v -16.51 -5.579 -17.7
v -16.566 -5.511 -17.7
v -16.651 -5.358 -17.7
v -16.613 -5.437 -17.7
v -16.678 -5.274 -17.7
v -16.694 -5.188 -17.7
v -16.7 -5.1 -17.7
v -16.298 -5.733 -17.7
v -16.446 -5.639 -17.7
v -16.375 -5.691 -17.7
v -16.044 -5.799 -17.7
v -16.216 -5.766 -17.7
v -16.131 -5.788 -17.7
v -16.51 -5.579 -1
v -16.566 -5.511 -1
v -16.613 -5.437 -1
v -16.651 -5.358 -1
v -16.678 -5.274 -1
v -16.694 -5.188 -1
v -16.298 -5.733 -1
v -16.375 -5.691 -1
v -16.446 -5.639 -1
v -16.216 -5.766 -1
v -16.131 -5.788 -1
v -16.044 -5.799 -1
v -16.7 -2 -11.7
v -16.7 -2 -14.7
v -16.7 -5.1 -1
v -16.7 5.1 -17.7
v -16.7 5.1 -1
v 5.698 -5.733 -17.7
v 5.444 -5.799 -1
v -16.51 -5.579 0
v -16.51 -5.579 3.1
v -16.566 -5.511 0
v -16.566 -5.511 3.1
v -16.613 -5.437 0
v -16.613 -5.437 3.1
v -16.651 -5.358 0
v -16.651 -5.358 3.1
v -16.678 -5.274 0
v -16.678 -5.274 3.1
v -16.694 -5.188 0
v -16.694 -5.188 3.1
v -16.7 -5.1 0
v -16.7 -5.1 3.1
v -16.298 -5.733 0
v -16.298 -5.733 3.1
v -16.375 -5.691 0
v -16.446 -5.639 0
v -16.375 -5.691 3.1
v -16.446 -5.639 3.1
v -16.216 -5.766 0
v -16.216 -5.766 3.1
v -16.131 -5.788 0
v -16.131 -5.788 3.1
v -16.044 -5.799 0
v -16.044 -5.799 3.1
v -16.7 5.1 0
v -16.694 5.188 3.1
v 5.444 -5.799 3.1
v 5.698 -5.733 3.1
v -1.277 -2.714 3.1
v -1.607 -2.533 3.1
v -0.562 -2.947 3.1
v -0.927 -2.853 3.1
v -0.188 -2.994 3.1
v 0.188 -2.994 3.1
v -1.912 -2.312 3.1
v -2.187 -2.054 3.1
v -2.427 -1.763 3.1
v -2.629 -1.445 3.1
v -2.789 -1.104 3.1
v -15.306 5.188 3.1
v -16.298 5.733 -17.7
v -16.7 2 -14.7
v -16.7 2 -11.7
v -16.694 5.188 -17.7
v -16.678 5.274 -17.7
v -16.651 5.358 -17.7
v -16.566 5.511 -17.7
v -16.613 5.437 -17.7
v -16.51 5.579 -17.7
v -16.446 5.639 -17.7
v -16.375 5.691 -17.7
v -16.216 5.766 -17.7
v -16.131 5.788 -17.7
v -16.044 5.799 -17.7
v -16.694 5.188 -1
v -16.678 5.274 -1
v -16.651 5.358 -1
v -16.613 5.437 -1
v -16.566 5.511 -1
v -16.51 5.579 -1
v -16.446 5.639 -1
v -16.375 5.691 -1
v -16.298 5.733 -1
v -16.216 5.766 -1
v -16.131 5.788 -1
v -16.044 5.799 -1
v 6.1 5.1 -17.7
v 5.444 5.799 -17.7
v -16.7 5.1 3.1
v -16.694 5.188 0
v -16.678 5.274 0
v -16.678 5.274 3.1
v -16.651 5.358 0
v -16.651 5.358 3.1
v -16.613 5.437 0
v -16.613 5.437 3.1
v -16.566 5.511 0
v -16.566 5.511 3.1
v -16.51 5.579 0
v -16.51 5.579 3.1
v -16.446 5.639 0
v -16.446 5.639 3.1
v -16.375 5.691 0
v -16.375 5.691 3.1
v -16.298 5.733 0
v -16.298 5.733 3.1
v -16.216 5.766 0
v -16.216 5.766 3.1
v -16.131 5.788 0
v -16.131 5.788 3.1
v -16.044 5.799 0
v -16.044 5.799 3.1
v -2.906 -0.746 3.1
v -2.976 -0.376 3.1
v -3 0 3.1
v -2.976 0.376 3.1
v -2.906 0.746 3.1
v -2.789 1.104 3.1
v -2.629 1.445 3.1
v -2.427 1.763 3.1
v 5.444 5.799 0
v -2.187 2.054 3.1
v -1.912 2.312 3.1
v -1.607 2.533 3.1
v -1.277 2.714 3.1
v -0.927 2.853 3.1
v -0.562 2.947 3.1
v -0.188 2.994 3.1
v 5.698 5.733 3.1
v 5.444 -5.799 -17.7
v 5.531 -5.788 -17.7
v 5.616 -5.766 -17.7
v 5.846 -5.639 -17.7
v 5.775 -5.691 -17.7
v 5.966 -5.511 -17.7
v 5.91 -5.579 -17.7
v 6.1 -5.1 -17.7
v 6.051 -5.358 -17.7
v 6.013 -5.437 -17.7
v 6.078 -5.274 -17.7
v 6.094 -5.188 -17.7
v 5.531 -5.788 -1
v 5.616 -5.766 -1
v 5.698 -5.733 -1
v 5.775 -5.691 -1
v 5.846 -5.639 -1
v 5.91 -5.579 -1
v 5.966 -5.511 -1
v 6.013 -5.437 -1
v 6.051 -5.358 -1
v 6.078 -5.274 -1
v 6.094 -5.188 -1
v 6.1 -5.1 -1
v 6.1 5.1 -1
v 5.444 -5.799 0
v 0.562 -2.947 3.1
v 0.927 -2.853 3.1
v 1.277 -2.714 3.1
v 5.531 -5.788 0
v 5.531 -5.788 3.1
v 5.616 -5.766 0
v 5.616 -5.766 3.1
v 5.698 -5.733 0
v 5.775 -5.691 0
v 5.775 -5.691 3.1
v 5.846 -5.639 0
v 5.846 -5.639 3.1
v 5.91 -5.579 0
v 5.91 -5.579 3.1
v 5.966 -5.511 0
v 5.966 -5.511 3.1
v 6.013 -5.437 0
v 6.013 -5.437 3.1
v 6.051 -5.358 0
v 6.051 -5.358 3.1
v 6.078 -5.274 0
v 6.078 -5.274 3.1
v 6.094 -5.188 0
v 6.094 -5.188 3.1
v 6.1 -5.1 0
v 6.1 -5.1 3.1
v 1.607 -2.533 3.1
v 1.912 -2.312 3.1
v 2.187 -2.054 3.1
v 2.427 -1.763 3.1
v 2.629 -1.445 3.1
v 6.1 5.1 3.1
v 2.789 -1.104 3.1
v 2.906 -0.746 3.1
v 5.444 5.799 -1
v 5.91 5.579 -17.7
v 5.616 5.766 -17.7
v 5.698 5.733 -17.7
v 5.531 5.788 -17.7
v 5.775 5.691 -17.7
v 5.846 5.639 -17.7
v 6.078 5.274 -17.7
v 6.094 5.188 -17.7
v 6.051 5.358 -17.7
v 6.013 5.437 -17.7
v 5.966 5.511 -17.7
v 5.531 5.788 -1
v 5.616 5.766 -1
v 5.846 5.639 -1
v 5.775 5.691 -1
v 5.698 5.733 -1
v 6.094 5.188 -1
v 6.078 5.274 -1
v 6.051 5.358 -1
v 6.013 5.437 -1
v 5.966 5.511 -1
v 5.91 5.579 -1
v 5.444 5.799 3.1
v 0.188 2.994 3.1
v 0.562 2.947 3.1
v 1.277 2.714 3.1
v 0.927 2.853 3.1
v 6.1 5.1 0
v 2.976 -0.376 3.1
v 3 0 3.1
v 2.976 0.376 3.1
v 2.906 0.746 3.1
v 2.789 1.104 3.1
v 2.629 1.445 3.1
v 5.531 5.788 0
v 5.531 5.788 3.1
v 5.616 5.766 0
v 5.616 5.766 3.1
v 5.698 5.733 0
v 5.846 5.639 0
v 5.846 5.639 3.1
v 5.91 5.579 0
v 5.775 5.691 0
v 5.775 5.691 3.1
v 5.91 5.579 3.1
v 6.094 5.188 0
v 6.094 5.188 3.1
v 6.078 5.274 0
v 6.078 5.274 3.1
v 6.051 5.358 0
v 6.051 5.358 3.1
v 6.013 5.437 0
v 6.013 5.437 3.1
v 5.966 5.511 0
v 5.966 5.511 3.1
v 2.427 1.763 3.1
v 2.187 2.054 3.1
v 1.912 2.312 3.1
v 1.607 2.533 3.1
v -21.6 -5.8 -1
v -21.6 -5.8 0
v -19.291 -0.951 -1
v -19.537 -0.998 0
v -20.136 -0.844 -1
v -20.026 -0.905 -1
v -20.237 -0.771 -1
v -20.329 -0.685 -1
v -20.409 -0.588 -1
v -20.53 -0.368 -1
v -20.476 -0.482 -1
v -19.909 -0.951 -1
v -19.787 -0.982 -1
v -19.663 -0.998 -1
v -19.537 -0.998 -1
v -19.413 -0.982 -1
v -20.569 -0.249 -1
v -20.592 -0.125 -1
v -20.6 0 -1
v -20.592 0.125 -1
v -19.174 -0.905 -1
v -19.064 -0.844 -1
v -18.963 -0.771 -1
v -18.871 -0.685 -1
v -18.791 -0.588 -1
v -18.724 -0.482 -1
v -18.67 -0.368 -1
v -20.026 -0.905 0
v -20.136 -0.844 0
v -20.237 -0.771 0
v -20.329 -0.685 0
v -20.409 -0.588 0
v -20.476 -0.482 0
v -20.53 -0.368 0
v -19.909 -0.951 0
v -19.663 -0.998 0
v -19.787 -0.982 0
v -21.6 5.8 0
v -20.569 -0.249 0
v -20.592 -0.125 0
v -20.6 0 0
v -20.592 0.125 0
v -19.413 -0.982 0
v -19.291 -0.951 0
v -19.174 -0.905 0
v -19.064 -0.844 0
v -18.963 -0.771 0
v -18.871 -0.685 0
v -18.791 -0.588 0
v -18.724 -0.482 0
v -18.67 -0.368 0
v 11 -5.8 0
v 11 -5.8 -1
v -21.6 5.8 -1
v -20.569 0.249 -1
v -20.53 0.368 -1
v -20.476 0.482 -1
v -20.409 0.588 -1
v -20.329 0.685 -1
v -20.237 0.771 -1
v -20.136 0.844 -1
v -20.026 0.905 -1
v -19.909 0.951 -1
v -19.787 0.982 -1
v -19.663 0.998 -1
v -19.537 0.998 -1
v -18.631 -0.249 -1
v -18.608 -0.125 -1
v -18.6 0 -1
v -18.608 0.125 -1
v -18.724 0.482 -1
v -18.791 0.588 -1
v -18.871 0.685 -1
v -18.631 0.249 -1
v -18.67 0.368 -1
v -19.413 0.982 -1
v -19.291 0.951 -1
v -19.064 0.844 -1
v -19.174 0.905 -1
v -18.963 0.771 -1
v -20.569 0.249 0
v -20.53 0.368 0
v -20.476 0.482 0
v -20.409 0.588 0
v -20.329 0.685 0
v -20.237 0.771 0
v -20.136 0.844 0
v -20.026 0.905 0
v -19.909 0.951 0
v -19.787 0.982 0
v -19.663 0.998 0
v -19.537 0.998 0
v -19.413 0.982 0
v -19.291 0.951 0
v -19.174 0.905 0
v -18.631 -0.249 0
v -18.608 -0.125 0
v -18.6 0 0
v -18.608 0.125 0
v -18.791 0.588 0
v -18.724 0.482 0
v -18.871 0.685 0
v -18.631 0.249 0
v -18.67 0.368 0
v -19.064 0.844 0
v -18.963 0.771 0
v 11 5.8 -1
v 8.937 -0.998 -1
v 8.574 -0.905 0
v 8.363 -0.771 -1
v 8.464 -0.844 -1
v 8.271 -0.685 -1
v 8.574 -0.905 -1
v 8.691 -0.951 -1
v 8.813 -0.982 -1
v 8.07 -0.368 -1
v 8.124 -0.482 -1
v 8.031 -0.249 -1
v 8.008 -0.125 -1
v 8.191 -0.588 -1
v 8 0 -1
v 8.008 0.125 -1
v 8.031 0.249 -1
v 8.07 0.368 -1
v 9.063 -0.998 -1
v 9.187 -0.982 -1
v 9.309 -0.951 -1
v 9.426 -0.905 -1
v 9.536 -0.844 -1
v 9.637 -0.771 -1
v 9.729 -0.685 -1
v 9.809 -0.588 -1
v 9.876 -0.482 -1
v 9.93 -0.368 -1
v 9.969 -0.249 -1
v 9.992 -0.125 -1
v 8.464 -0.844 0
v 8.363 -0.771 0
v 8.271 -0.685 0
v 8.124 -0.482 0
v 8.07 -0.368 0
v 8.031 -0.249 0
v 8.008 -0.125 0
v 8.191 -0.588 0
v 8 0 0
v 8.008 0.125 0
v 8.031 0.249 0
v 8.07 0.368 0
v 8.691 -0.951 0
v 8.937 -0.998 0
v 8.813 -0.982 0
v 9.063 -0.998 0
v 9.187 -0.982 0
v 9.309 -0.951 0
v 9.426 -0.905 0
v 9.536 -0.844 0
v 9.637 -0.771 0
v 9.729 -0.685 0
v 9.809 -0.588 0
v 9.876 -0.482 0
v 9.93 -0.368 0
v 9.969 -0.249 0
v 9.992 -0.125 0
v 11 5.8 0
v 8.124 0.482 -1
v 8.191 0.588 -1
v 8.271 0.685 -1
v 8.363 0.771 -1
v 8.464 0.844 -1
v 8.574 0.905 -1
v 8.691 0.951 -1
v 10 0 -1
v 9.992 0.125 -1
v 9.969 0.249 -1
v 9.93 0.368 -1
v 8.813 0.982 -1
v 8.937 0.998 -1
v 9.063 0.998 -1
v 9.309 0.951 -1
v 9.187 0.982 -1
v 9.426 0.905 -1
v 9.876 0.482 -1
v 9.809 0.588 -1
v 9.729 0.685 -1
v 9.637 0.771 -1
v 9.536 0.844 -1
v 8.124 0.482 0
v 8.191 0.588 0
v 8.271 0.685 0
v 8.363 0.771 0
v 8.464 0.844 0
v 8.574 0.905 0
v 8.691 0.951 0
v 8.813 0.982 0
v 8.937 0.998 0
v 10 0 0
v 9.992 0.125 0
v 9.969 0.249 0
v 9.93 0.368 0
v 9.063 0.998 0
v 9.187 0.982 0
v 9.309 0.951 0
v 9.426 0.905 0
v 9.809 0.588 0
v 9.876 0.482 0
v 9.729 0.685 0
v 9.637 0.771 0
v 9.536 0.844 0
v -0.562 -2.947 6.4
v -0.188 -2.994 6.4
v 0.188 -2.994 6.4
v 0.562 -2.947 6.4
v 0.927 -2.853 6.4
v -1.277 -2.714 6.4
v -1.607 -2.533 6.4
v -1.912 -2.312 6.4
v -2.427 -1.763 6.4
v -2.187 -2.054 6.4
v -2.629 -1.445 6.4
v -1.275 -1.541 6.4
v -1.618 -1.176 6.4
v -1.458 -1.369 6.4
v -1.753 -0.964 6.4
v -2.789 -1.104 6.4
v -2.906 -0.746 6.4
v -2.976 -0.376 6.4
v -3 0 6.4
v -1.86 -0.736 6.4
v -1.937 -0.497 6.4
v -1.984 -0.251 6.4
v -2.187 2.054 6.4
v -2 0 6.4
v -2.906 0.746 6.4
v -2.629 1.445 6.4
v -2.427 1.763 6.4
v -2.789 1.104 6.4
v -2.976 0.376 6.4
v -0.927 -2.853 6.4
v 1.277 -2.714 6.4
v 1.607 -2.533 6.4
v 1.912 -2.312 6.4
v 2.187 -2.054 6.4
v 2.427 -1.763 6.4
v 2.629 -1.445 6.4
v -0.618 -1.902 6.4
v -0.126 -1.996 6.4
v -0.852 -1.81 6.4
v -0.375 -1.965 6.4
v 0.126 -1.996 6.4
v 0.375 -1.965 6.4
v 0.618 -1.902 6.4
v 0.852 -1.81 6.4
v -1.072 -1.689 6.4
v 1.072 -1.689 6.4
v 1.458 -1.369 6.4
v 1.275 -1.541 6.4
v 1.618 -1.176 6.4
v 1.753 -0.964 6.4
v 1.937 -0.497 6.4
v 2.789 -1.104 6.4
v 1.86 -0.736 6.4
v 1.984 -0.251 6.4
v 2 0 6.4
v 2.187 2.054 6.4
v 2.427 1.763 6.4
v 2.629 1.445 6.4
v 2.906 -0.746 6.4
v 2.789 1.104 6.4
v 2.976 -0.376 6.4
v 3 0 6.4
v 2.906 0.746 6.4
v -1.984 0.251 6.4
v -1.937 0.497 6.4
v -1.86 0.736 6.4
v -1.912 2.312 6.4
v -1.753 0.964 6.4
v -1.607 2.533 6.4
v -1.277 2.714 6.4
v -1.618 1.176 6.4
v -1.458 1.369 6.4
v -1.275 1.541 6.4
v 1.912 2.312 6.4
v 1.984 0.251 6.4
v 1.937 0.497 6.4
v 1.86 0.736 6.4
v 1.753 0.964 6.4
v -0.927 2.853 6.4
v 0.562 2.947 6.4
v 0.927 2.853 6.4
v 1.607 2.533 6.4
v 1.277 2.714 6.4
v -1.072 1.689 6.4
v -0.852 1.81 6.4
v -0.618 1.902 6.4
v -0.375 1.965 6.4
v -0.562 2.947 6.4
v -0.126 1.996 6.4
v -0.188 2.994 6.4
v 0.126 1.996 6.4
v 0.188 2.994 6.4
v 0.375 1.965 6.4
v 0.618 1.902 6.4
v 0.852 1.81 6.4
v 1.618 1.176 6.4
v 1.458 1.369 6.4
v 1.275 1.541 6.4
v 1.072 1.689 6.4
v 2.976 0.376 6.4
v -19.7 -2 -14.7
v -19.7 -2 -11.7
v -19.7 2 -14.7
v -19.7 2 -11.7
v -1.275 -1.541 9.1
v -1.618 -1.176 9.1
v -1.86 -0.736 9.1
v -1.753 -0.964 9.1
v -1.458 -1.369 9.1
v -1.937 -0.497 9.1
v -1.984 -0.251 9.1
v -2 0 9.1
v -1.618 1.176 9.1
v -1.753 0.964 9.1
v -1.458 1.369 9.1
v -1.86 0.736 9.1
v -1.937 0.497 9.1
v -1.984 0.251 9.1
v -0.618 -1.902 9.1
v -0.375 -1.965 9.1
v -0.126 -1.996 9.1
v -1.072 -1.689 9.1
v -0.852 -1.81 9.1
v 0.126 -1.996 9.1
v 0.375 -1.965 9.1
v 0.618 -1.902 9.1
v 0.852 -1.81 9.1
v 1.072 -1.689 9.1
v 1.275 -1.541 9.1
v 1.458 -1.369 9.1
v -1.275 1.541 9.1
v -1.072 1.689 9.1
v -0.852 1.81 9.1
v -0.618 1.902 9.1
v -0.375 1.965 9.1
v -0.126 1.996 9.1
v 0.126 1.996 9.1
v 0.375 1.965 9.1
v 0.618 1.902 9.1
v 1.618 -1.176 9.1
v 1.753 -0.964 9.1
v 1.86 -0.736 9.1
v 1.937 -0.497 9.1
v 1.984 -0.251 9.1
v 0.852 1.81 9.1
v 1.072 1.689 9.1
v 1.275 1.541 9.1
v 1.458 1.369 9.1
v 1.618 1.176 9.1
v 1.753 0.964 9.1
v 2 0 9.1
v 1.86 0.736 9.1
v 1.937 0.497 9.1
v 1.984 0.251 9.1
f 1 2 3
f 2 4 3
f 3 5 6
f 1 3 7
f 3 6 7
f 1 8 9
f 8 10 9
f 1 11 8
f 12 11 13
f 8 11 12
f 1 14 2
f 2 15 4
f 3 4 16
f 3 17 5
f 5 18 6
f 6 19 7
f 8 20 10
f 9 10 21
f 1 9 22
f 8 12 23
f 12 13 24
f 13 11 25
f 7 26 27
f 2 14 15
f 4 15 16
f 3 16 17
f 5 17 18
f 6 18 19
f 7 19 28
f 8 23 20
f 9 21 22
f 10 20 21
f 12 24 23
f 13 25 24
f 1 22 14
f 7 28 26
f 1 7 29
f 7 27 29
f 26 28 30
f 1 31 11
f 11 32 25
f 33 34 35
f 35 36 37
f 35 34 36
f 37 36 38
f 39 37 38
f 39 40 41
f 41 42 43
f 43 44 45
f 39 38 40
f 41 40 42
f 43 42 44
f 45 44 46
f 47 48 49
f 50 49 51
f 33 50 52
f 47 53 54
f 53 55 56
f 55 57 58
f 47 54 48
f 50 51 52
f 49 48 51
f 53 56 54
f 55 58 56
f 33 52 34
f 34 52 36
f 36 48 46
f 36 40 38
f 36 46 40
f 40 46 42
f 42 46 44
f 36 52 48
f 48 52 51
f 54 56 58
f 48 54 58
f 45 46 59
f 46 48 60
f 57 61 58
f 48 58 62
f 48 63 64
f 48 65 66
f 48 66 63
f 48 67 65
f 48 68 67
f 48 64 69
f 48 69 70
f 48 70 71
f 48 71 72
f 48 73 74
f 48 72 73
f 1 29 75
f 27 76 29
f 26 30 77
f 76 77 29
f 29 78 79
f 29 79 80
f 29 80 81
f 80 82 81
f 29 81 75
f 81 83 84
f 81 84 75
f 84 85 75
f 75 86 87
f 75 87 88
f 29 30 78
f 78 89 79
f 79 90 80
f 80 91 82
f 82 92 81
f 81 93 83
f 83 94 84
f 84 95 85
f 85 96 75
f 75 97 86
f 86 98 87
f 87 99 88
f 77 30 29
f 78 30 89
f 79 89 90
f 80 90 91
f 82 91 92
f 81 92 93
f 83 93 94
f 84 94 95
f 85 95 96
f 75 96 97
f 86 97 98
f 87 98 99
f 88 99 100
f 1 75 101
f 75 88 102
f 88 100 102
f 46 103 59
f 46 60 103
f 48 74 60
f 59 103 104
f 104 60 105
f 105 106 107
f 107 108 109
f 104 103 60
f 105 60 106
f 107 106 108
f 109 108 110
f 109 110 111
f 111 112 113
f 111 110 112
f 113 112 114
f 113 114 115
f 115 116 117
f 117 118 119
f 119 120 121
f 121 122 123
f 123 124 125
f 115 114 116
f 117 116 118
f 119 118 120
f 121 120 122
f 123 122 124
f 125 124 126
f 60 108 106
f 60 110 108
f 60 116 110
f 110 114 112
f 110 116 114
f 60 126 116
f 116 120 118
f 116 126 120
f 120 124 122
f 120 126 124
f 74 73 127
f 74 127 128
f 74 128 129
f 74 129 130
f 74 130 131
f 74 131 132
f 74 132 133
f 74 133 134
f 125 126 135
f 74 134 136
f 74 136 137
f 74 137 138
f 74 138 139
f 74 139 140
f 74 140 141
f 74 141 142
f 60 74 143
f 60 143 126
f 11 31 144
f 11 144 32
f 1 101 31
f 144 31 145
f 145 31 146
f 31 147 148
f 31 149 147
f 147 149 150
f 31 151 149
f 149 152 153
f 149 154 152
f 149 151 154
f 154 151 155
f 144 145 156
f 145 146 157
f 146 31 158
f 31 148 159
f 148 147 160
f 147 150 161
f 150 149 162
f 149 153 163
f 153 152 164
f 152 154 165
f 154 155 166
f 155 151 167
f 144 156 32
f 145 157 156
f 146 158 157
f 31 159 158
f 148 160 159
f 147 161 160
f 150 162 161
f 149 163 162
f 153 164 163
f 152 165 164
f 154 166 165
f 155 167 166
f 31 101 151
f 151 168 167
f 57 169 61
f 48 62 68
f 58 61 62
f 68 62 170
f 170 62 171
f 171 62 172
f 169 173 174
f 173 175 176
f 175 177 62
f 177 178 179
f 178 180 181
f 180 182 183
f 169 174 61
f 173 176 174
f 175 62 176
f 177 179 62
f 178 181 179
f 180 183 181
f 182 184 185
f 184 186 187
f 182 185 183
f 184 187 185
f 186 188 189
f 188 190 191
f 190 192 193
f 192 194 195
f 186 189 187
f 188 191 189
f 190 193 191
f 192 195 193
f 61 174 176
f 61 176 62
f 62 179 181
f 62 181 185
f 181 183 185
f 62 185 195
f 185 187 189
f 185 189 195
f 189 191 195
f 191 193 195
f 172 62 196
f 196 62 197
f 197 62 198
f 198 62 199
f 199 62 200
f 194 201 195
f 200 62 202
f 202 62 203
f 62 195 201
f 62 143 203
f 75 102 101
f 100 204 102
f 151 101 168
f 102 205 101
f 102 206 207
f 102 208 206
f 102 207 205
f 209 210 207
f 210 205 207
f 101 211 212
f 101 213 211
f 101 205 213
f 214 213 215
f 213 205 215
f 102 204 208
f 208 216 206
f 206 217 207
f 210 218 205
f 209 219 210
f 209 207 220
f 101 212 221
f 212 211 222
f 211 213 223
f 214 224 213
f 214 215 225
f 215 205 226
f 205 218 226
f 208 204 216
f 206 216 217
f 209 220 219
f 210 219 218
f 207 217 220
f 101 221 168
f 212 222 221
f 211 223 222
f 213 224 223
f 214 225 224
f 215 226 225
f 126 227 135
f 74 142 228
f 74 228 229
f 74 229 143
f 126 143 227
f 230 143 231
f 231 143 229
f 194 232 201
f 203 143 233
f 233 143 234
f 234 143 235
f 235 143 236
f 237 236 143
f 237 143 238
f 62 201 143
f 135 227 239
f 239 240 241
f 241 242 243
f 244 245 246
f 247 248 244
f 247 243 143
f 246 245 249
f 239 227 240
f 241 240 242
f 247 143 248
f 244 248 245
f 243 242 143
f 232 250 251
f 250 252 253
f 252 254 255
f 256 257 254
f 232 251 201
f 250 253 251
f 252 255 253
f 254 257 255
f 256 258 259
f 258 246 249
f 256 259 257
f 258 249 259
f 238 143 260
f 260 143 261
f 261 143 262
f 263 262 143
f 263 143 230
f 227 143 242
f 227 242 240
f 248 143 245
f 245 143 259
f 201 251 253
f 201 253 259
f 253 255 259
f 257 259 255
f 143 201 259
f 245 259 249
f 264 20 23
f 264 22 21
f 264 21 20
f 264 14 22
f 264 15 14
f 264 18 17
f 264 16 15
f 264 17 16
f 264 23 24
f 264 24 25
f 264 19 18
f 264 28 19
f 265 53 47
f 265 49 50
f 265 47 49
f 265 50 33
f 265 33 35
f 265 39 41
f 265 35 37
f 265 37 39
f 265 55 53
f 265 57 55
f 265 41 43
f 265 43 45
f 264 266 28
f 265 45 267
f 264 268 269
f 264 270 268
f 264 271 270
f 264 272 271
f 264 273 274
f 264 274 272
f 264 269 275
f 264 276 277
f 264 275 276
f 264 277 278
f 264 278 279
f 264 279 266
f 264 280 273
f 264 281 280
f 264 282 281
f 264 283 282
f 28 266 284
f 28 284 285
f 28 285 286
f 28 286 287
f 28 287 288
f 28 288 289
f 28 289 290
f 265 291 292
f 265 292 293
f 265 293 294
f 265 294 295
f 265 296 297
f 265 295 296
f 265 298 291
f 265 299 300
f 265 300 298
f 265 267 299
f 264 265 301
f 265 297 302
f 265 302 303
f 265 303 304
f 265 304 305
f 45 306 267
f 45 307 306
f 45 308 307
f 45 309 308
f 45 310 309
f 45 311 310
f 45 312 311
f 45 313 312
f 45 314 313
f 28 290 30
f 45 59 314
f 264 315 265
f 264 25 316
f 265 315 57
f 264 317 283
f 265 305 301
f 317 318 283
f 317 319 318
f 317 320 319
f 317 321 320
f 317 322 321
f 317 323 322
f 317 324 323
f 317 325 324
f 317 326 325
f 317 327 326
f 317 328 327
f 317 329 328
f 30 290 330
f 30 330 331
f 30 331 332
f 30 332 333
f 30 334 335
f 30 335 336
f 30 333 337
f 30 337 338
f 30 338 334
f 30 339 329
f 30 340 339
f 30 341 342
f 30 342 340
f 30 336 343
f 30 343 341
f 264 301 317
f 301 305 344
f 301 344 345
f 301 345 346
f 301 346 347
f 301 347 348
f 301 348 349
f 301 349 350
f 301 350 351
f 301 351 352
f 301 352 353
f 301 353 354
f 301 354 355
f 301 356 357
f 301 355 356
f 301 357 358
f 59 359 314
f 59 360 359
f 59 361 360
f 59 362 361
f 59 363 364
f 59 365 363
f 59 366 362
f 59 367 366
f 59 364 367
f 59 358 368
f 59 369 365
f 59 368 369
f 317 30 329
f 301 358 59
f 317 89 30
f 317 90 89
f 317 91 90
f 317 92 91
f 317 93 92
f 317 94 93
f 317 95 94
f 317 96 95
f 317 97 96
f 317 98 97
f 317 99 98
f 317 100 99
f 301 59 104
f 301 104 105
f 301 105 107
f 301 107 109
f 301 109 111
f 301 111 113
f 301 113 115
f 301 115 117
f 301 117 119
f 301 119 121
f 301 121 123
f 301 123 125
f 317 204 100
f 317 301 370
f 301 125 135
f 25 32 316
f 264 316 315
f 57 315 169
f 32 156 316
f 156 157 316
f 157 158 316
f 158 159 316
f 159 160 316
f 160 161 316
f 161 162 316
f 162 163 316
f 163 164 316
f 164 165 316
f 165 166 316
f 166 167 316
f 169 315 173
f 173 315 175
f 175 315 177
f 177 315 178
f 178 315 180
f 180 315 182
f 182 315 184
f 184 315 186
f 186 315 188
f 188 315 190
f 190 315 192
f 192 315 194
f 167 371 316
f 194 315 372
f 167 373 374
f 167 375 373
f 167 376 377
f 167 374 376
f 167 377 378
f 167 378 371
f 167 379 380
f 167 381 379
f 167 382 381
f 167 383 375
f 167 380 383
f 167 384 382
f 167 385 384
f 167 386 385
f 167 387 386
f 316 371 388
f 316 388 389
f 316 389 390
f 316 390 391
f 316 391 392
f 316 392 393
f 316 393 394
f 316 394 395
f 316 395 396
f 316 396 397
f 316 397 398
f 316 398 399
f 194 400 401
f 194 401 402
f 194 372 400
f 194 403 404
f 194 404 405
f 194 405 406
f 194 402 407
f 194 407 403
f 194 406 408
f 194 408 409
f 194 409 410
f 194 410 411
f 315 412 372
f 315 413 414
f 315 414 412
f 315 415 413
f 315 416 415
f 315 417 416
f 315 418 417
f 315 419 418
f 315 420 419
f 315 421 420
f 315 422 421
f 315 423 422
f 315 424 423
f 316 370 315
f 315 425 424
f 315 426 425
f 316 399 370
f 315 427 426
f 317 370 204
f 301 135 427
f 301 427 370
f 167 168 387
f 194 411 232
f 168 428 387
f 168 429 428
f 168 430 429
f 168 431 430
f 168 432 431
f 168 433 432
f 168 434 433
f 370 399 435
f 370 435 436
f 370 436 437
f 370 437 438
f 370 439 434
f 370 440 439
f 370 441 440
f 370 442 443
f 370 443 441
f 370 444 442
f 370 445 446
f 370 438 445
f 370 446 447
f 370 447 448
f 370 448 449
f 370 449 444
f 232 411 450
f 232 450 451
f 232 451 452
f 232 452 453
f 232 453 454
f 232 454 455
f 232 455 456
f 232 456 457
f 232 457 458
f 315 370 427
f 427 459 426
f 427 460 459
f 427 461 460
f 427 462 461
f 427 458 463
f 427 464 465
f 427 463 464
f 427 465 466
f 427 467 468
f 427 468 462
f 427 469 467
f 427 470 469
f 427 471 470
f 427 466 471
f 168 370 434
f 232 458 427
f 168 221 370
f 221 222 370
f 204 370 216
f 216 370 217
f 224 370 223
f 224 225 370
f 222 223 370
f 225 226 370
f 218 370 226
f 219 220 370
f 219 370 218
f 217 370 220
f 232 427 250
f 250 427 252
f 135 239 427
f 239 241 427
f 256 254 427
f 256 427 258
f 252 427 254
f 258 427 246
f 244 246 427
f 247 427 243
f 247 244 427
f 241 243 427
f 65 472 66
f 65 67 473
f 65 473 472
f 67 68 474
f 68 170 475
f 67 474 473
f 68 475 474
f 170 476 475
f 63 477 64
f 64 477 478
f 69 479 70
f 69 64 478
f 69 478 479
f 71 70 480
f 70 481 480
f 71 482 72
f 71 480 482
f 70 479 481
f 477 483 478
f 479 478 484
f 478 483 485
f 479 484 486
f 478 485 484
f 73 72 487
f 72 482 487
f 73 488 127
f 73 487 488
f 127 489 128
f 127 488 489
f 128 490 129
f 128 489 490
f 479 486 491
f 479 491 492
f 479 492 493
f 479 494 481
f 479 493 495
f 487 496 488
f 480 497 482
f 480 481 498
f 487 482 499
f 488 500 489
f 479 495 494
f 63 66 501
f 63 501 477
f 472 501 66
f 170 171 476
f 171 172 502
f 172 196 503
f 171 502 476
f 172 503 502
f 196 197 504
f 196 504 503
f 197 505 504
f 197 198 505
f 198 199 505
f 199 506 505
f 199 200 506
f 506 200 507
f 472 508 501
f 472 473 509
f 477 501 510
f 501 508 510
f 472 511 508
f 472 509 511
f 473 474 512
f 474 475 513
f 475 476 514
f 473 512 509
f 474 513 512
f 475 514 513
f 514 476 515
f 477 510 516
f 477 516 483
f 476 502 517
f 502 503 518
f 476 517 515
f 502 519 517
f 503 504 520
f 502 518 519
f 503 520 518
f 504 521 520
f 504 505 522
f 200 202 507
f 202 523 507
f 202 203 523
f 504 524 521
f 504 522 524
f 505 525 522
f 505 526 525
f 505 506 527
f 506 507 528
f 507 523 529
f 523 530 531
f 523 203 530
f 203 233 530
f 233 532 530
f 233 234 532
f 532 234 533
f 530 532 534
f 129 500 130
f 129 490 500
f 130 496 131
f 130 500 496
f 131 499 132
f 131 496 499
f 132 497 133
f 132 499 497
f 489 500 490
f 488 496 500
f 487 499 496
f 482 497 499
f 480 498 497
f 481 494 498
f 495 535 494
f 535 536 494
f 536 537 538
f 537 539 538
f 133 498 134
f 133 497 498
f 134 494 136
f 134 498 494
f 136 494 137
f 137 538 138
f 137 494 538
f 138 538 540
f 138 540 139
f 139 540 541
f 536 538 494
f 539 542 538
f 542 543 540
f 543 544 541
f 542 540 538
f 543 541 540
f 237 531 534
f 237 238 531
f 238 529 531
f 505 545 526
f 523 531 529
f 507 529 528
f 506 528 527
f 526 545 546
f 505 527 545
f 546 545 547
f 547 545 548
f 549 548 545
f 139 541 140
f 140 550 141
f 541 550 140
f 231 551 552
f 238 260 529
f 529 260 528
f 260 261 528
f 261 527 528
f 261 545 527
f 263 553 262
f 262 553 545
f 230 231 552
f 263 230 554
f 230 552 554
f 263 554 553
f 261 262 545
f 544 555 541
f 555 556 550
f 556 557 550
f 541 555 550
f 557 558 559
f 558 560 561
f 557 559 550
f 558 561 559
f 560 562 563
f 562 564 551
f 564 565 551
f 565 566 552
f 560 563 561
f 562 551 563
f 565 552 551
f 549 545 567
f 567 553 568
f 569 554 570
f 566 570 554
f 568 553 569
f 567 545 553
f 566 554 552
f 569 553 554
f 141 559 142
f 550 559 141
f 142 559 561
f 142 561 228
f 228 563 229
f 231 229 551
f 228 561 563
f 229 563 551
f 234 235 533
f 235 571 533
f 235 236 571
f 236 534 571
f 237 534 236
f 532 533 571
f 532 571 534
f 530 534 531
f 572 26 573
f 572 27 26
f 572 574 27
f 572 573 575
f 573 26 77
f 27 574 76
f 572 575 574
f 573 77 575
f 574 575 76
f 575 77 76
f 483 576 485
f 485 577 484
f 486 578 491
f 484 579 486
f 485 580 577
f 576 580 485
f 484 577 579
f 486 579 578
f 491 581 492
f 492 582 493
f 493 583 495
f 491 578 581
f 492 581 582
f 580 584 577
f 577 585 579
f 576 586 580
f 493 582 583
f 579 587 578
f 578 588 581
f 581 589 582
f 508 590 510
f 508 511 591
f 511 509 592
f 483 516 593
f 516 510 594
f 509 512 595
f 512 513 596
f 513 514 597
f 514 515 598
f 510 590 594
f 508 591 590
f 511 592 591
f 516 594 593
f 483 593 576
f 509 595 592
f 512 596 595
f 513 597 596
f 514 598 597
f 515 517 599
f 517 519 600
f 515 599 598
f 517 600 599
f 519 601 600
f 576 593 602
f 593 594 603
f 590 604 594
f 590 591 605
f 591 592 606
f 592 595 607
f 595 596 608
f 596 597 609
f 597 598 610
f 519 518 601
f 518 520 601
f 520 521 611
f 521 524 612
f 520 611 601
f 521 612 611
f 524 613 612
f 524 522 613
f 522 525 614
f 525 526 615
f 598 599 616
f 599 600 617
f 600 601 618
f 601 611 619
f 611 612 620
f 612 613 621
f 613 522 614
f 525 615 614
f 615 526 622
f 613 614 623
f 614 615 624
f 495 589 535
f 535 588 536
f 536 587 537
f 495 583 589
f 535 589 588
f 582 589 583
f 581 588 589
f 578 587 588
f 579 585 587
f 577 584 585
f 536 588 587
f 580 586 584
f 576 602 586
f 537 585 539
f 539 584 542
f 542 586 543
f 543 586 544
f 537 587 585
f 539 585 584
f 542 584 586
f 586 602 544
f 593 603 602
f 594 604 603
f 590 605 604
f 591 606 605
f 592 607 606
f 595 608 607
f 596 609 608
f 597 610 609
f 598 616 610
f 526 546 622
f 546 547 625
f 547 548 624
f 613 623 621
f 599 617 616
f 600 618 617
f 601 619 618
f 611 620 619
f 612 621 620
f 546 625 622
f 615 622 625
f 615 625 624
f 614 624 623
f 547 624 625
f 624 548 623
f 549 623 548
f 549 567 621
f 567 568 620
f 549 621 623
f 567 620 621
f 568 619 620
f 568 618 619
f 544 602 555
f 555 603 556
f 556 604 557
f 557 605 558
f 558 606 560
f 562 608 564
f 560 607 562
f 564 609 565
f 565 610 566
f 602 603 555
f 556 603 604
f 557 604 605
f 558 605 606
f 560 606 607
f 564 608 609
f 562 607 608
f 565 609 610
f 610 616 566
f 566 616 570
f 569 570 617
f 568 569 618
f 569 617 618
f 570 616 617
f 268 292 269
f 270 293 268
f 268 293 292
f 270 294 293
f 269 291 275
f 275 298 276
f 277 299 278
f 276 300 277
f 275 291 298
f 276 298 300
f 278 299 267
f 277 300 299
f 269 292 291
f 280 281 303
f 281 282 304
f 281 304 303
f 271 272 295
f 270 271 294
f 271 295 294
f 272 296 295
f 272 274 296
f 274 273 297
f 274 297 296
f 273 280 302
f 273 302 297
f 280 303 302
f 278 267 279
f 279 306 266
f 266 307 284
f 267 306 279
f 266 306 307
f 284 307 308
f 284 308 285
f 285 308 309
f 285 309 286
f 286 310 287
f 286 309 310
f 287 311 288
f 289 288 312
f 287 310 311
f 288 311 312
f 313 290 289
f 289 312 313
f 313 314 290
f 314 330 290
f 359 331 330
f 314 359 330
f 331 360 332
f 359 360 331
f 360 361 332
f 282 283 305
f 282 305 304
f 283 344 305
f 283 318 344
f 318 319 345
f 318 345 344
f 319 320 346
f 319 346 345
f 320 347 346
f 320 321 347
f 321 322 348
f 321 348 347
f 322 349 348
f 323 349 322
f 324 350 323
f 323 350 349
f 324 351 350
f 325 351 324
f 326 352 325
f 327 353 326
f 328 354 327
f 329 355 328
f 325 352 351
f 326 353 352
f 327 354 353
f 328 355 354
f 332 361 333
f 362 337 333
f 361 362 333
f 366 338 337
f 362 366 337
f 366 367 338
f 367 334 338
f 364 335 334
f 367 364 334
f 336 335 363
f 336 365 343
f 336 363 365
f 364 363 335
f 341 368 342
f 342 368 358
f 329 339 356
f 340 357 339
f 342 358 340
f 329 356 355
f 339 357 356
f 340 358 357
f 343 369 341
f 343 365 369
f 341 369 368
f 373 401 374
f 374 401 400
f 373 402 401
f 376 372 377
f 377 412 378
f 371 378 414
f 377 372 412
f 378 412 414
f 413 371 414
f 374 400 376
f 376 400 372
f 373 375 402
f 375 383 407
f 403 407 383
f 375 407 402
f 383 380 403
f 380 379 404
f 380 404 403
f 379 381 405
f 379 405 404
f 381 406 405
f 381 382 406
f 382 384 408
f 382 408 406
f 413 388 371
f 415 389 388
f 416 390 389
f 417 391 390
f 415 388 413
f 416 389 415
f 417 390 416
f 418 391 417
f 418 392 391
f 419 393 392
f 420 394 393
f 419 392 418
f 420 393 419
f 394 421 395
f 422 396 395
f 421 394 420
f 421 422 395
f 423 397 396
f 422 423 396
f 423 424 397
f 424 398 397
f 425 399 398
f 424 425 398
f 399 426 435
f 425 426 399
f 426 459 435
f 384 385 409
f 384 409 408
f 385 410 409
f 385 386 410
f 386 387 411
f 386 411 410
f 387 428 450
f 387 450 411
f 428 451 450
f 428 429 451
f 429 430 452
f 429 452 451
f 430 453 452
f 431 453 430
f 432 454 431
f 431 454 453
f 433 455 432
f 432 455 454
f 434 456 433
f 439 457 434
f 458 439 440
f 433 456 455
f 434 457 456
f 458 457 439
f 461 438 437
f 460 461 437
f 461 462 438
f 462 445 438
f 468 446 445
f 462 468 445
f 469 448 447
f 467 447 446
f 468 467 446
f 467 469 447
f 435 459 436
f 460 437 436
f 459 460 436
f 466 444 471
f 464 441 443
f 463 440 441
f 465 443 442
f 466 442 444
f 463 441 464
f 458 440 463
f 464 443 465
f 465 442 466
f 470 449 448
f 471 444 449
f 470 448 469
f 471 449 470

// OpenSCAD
$fn = 50;

difference() {
	union() {
		translate(v = [-5.300000000000001, 0, -17.7]) {
			hull() {
				translate(v = [-10.700000000000001, 5.1, 0]) {
					cylinder(h = 20.8, r = 0.7);
				}
				translate(v = [10.700000000000001, 5.1, 0]) {
					cylinder(h = 20.8, r = 0.7);
				}
				translate(v = [-10.700000000000001, -5.1, 0]) {
					cylinder(h = 20.8, r = 0.7);
				}
				translate(v = [10.700000000000001, -5.1, 0]) {
					cylinder(h = 20.8, r = 0.7);
				}
			}
		}
		translate(v = [-21.6, -5.8, -1]) {
			cube(size = [32.6, 11.6, 1]);
		}
		translate(v = [0, 0, 3.1]) {
			cylinder(h = 3.3000000000000003, r = 3.0);
		}
		translate(v = [-19.700000000000003, -2.0, -14.7]) {
			cube(size = [4, 4, 3]);
		}
		translate(v = [0, 0, 6.4]) {
			cylinder(h = 2.6999999999999993, r = 2.0);
		}
	}
	union() {
		translate(v = [-19.6, 0, -4]) {
			cylinder(h = 5, r = 1.0);
		}
		translate(v = [9.0, 0, -4]) {
			cylinder(h = 5, r = 1.0);
		}
	}
}
